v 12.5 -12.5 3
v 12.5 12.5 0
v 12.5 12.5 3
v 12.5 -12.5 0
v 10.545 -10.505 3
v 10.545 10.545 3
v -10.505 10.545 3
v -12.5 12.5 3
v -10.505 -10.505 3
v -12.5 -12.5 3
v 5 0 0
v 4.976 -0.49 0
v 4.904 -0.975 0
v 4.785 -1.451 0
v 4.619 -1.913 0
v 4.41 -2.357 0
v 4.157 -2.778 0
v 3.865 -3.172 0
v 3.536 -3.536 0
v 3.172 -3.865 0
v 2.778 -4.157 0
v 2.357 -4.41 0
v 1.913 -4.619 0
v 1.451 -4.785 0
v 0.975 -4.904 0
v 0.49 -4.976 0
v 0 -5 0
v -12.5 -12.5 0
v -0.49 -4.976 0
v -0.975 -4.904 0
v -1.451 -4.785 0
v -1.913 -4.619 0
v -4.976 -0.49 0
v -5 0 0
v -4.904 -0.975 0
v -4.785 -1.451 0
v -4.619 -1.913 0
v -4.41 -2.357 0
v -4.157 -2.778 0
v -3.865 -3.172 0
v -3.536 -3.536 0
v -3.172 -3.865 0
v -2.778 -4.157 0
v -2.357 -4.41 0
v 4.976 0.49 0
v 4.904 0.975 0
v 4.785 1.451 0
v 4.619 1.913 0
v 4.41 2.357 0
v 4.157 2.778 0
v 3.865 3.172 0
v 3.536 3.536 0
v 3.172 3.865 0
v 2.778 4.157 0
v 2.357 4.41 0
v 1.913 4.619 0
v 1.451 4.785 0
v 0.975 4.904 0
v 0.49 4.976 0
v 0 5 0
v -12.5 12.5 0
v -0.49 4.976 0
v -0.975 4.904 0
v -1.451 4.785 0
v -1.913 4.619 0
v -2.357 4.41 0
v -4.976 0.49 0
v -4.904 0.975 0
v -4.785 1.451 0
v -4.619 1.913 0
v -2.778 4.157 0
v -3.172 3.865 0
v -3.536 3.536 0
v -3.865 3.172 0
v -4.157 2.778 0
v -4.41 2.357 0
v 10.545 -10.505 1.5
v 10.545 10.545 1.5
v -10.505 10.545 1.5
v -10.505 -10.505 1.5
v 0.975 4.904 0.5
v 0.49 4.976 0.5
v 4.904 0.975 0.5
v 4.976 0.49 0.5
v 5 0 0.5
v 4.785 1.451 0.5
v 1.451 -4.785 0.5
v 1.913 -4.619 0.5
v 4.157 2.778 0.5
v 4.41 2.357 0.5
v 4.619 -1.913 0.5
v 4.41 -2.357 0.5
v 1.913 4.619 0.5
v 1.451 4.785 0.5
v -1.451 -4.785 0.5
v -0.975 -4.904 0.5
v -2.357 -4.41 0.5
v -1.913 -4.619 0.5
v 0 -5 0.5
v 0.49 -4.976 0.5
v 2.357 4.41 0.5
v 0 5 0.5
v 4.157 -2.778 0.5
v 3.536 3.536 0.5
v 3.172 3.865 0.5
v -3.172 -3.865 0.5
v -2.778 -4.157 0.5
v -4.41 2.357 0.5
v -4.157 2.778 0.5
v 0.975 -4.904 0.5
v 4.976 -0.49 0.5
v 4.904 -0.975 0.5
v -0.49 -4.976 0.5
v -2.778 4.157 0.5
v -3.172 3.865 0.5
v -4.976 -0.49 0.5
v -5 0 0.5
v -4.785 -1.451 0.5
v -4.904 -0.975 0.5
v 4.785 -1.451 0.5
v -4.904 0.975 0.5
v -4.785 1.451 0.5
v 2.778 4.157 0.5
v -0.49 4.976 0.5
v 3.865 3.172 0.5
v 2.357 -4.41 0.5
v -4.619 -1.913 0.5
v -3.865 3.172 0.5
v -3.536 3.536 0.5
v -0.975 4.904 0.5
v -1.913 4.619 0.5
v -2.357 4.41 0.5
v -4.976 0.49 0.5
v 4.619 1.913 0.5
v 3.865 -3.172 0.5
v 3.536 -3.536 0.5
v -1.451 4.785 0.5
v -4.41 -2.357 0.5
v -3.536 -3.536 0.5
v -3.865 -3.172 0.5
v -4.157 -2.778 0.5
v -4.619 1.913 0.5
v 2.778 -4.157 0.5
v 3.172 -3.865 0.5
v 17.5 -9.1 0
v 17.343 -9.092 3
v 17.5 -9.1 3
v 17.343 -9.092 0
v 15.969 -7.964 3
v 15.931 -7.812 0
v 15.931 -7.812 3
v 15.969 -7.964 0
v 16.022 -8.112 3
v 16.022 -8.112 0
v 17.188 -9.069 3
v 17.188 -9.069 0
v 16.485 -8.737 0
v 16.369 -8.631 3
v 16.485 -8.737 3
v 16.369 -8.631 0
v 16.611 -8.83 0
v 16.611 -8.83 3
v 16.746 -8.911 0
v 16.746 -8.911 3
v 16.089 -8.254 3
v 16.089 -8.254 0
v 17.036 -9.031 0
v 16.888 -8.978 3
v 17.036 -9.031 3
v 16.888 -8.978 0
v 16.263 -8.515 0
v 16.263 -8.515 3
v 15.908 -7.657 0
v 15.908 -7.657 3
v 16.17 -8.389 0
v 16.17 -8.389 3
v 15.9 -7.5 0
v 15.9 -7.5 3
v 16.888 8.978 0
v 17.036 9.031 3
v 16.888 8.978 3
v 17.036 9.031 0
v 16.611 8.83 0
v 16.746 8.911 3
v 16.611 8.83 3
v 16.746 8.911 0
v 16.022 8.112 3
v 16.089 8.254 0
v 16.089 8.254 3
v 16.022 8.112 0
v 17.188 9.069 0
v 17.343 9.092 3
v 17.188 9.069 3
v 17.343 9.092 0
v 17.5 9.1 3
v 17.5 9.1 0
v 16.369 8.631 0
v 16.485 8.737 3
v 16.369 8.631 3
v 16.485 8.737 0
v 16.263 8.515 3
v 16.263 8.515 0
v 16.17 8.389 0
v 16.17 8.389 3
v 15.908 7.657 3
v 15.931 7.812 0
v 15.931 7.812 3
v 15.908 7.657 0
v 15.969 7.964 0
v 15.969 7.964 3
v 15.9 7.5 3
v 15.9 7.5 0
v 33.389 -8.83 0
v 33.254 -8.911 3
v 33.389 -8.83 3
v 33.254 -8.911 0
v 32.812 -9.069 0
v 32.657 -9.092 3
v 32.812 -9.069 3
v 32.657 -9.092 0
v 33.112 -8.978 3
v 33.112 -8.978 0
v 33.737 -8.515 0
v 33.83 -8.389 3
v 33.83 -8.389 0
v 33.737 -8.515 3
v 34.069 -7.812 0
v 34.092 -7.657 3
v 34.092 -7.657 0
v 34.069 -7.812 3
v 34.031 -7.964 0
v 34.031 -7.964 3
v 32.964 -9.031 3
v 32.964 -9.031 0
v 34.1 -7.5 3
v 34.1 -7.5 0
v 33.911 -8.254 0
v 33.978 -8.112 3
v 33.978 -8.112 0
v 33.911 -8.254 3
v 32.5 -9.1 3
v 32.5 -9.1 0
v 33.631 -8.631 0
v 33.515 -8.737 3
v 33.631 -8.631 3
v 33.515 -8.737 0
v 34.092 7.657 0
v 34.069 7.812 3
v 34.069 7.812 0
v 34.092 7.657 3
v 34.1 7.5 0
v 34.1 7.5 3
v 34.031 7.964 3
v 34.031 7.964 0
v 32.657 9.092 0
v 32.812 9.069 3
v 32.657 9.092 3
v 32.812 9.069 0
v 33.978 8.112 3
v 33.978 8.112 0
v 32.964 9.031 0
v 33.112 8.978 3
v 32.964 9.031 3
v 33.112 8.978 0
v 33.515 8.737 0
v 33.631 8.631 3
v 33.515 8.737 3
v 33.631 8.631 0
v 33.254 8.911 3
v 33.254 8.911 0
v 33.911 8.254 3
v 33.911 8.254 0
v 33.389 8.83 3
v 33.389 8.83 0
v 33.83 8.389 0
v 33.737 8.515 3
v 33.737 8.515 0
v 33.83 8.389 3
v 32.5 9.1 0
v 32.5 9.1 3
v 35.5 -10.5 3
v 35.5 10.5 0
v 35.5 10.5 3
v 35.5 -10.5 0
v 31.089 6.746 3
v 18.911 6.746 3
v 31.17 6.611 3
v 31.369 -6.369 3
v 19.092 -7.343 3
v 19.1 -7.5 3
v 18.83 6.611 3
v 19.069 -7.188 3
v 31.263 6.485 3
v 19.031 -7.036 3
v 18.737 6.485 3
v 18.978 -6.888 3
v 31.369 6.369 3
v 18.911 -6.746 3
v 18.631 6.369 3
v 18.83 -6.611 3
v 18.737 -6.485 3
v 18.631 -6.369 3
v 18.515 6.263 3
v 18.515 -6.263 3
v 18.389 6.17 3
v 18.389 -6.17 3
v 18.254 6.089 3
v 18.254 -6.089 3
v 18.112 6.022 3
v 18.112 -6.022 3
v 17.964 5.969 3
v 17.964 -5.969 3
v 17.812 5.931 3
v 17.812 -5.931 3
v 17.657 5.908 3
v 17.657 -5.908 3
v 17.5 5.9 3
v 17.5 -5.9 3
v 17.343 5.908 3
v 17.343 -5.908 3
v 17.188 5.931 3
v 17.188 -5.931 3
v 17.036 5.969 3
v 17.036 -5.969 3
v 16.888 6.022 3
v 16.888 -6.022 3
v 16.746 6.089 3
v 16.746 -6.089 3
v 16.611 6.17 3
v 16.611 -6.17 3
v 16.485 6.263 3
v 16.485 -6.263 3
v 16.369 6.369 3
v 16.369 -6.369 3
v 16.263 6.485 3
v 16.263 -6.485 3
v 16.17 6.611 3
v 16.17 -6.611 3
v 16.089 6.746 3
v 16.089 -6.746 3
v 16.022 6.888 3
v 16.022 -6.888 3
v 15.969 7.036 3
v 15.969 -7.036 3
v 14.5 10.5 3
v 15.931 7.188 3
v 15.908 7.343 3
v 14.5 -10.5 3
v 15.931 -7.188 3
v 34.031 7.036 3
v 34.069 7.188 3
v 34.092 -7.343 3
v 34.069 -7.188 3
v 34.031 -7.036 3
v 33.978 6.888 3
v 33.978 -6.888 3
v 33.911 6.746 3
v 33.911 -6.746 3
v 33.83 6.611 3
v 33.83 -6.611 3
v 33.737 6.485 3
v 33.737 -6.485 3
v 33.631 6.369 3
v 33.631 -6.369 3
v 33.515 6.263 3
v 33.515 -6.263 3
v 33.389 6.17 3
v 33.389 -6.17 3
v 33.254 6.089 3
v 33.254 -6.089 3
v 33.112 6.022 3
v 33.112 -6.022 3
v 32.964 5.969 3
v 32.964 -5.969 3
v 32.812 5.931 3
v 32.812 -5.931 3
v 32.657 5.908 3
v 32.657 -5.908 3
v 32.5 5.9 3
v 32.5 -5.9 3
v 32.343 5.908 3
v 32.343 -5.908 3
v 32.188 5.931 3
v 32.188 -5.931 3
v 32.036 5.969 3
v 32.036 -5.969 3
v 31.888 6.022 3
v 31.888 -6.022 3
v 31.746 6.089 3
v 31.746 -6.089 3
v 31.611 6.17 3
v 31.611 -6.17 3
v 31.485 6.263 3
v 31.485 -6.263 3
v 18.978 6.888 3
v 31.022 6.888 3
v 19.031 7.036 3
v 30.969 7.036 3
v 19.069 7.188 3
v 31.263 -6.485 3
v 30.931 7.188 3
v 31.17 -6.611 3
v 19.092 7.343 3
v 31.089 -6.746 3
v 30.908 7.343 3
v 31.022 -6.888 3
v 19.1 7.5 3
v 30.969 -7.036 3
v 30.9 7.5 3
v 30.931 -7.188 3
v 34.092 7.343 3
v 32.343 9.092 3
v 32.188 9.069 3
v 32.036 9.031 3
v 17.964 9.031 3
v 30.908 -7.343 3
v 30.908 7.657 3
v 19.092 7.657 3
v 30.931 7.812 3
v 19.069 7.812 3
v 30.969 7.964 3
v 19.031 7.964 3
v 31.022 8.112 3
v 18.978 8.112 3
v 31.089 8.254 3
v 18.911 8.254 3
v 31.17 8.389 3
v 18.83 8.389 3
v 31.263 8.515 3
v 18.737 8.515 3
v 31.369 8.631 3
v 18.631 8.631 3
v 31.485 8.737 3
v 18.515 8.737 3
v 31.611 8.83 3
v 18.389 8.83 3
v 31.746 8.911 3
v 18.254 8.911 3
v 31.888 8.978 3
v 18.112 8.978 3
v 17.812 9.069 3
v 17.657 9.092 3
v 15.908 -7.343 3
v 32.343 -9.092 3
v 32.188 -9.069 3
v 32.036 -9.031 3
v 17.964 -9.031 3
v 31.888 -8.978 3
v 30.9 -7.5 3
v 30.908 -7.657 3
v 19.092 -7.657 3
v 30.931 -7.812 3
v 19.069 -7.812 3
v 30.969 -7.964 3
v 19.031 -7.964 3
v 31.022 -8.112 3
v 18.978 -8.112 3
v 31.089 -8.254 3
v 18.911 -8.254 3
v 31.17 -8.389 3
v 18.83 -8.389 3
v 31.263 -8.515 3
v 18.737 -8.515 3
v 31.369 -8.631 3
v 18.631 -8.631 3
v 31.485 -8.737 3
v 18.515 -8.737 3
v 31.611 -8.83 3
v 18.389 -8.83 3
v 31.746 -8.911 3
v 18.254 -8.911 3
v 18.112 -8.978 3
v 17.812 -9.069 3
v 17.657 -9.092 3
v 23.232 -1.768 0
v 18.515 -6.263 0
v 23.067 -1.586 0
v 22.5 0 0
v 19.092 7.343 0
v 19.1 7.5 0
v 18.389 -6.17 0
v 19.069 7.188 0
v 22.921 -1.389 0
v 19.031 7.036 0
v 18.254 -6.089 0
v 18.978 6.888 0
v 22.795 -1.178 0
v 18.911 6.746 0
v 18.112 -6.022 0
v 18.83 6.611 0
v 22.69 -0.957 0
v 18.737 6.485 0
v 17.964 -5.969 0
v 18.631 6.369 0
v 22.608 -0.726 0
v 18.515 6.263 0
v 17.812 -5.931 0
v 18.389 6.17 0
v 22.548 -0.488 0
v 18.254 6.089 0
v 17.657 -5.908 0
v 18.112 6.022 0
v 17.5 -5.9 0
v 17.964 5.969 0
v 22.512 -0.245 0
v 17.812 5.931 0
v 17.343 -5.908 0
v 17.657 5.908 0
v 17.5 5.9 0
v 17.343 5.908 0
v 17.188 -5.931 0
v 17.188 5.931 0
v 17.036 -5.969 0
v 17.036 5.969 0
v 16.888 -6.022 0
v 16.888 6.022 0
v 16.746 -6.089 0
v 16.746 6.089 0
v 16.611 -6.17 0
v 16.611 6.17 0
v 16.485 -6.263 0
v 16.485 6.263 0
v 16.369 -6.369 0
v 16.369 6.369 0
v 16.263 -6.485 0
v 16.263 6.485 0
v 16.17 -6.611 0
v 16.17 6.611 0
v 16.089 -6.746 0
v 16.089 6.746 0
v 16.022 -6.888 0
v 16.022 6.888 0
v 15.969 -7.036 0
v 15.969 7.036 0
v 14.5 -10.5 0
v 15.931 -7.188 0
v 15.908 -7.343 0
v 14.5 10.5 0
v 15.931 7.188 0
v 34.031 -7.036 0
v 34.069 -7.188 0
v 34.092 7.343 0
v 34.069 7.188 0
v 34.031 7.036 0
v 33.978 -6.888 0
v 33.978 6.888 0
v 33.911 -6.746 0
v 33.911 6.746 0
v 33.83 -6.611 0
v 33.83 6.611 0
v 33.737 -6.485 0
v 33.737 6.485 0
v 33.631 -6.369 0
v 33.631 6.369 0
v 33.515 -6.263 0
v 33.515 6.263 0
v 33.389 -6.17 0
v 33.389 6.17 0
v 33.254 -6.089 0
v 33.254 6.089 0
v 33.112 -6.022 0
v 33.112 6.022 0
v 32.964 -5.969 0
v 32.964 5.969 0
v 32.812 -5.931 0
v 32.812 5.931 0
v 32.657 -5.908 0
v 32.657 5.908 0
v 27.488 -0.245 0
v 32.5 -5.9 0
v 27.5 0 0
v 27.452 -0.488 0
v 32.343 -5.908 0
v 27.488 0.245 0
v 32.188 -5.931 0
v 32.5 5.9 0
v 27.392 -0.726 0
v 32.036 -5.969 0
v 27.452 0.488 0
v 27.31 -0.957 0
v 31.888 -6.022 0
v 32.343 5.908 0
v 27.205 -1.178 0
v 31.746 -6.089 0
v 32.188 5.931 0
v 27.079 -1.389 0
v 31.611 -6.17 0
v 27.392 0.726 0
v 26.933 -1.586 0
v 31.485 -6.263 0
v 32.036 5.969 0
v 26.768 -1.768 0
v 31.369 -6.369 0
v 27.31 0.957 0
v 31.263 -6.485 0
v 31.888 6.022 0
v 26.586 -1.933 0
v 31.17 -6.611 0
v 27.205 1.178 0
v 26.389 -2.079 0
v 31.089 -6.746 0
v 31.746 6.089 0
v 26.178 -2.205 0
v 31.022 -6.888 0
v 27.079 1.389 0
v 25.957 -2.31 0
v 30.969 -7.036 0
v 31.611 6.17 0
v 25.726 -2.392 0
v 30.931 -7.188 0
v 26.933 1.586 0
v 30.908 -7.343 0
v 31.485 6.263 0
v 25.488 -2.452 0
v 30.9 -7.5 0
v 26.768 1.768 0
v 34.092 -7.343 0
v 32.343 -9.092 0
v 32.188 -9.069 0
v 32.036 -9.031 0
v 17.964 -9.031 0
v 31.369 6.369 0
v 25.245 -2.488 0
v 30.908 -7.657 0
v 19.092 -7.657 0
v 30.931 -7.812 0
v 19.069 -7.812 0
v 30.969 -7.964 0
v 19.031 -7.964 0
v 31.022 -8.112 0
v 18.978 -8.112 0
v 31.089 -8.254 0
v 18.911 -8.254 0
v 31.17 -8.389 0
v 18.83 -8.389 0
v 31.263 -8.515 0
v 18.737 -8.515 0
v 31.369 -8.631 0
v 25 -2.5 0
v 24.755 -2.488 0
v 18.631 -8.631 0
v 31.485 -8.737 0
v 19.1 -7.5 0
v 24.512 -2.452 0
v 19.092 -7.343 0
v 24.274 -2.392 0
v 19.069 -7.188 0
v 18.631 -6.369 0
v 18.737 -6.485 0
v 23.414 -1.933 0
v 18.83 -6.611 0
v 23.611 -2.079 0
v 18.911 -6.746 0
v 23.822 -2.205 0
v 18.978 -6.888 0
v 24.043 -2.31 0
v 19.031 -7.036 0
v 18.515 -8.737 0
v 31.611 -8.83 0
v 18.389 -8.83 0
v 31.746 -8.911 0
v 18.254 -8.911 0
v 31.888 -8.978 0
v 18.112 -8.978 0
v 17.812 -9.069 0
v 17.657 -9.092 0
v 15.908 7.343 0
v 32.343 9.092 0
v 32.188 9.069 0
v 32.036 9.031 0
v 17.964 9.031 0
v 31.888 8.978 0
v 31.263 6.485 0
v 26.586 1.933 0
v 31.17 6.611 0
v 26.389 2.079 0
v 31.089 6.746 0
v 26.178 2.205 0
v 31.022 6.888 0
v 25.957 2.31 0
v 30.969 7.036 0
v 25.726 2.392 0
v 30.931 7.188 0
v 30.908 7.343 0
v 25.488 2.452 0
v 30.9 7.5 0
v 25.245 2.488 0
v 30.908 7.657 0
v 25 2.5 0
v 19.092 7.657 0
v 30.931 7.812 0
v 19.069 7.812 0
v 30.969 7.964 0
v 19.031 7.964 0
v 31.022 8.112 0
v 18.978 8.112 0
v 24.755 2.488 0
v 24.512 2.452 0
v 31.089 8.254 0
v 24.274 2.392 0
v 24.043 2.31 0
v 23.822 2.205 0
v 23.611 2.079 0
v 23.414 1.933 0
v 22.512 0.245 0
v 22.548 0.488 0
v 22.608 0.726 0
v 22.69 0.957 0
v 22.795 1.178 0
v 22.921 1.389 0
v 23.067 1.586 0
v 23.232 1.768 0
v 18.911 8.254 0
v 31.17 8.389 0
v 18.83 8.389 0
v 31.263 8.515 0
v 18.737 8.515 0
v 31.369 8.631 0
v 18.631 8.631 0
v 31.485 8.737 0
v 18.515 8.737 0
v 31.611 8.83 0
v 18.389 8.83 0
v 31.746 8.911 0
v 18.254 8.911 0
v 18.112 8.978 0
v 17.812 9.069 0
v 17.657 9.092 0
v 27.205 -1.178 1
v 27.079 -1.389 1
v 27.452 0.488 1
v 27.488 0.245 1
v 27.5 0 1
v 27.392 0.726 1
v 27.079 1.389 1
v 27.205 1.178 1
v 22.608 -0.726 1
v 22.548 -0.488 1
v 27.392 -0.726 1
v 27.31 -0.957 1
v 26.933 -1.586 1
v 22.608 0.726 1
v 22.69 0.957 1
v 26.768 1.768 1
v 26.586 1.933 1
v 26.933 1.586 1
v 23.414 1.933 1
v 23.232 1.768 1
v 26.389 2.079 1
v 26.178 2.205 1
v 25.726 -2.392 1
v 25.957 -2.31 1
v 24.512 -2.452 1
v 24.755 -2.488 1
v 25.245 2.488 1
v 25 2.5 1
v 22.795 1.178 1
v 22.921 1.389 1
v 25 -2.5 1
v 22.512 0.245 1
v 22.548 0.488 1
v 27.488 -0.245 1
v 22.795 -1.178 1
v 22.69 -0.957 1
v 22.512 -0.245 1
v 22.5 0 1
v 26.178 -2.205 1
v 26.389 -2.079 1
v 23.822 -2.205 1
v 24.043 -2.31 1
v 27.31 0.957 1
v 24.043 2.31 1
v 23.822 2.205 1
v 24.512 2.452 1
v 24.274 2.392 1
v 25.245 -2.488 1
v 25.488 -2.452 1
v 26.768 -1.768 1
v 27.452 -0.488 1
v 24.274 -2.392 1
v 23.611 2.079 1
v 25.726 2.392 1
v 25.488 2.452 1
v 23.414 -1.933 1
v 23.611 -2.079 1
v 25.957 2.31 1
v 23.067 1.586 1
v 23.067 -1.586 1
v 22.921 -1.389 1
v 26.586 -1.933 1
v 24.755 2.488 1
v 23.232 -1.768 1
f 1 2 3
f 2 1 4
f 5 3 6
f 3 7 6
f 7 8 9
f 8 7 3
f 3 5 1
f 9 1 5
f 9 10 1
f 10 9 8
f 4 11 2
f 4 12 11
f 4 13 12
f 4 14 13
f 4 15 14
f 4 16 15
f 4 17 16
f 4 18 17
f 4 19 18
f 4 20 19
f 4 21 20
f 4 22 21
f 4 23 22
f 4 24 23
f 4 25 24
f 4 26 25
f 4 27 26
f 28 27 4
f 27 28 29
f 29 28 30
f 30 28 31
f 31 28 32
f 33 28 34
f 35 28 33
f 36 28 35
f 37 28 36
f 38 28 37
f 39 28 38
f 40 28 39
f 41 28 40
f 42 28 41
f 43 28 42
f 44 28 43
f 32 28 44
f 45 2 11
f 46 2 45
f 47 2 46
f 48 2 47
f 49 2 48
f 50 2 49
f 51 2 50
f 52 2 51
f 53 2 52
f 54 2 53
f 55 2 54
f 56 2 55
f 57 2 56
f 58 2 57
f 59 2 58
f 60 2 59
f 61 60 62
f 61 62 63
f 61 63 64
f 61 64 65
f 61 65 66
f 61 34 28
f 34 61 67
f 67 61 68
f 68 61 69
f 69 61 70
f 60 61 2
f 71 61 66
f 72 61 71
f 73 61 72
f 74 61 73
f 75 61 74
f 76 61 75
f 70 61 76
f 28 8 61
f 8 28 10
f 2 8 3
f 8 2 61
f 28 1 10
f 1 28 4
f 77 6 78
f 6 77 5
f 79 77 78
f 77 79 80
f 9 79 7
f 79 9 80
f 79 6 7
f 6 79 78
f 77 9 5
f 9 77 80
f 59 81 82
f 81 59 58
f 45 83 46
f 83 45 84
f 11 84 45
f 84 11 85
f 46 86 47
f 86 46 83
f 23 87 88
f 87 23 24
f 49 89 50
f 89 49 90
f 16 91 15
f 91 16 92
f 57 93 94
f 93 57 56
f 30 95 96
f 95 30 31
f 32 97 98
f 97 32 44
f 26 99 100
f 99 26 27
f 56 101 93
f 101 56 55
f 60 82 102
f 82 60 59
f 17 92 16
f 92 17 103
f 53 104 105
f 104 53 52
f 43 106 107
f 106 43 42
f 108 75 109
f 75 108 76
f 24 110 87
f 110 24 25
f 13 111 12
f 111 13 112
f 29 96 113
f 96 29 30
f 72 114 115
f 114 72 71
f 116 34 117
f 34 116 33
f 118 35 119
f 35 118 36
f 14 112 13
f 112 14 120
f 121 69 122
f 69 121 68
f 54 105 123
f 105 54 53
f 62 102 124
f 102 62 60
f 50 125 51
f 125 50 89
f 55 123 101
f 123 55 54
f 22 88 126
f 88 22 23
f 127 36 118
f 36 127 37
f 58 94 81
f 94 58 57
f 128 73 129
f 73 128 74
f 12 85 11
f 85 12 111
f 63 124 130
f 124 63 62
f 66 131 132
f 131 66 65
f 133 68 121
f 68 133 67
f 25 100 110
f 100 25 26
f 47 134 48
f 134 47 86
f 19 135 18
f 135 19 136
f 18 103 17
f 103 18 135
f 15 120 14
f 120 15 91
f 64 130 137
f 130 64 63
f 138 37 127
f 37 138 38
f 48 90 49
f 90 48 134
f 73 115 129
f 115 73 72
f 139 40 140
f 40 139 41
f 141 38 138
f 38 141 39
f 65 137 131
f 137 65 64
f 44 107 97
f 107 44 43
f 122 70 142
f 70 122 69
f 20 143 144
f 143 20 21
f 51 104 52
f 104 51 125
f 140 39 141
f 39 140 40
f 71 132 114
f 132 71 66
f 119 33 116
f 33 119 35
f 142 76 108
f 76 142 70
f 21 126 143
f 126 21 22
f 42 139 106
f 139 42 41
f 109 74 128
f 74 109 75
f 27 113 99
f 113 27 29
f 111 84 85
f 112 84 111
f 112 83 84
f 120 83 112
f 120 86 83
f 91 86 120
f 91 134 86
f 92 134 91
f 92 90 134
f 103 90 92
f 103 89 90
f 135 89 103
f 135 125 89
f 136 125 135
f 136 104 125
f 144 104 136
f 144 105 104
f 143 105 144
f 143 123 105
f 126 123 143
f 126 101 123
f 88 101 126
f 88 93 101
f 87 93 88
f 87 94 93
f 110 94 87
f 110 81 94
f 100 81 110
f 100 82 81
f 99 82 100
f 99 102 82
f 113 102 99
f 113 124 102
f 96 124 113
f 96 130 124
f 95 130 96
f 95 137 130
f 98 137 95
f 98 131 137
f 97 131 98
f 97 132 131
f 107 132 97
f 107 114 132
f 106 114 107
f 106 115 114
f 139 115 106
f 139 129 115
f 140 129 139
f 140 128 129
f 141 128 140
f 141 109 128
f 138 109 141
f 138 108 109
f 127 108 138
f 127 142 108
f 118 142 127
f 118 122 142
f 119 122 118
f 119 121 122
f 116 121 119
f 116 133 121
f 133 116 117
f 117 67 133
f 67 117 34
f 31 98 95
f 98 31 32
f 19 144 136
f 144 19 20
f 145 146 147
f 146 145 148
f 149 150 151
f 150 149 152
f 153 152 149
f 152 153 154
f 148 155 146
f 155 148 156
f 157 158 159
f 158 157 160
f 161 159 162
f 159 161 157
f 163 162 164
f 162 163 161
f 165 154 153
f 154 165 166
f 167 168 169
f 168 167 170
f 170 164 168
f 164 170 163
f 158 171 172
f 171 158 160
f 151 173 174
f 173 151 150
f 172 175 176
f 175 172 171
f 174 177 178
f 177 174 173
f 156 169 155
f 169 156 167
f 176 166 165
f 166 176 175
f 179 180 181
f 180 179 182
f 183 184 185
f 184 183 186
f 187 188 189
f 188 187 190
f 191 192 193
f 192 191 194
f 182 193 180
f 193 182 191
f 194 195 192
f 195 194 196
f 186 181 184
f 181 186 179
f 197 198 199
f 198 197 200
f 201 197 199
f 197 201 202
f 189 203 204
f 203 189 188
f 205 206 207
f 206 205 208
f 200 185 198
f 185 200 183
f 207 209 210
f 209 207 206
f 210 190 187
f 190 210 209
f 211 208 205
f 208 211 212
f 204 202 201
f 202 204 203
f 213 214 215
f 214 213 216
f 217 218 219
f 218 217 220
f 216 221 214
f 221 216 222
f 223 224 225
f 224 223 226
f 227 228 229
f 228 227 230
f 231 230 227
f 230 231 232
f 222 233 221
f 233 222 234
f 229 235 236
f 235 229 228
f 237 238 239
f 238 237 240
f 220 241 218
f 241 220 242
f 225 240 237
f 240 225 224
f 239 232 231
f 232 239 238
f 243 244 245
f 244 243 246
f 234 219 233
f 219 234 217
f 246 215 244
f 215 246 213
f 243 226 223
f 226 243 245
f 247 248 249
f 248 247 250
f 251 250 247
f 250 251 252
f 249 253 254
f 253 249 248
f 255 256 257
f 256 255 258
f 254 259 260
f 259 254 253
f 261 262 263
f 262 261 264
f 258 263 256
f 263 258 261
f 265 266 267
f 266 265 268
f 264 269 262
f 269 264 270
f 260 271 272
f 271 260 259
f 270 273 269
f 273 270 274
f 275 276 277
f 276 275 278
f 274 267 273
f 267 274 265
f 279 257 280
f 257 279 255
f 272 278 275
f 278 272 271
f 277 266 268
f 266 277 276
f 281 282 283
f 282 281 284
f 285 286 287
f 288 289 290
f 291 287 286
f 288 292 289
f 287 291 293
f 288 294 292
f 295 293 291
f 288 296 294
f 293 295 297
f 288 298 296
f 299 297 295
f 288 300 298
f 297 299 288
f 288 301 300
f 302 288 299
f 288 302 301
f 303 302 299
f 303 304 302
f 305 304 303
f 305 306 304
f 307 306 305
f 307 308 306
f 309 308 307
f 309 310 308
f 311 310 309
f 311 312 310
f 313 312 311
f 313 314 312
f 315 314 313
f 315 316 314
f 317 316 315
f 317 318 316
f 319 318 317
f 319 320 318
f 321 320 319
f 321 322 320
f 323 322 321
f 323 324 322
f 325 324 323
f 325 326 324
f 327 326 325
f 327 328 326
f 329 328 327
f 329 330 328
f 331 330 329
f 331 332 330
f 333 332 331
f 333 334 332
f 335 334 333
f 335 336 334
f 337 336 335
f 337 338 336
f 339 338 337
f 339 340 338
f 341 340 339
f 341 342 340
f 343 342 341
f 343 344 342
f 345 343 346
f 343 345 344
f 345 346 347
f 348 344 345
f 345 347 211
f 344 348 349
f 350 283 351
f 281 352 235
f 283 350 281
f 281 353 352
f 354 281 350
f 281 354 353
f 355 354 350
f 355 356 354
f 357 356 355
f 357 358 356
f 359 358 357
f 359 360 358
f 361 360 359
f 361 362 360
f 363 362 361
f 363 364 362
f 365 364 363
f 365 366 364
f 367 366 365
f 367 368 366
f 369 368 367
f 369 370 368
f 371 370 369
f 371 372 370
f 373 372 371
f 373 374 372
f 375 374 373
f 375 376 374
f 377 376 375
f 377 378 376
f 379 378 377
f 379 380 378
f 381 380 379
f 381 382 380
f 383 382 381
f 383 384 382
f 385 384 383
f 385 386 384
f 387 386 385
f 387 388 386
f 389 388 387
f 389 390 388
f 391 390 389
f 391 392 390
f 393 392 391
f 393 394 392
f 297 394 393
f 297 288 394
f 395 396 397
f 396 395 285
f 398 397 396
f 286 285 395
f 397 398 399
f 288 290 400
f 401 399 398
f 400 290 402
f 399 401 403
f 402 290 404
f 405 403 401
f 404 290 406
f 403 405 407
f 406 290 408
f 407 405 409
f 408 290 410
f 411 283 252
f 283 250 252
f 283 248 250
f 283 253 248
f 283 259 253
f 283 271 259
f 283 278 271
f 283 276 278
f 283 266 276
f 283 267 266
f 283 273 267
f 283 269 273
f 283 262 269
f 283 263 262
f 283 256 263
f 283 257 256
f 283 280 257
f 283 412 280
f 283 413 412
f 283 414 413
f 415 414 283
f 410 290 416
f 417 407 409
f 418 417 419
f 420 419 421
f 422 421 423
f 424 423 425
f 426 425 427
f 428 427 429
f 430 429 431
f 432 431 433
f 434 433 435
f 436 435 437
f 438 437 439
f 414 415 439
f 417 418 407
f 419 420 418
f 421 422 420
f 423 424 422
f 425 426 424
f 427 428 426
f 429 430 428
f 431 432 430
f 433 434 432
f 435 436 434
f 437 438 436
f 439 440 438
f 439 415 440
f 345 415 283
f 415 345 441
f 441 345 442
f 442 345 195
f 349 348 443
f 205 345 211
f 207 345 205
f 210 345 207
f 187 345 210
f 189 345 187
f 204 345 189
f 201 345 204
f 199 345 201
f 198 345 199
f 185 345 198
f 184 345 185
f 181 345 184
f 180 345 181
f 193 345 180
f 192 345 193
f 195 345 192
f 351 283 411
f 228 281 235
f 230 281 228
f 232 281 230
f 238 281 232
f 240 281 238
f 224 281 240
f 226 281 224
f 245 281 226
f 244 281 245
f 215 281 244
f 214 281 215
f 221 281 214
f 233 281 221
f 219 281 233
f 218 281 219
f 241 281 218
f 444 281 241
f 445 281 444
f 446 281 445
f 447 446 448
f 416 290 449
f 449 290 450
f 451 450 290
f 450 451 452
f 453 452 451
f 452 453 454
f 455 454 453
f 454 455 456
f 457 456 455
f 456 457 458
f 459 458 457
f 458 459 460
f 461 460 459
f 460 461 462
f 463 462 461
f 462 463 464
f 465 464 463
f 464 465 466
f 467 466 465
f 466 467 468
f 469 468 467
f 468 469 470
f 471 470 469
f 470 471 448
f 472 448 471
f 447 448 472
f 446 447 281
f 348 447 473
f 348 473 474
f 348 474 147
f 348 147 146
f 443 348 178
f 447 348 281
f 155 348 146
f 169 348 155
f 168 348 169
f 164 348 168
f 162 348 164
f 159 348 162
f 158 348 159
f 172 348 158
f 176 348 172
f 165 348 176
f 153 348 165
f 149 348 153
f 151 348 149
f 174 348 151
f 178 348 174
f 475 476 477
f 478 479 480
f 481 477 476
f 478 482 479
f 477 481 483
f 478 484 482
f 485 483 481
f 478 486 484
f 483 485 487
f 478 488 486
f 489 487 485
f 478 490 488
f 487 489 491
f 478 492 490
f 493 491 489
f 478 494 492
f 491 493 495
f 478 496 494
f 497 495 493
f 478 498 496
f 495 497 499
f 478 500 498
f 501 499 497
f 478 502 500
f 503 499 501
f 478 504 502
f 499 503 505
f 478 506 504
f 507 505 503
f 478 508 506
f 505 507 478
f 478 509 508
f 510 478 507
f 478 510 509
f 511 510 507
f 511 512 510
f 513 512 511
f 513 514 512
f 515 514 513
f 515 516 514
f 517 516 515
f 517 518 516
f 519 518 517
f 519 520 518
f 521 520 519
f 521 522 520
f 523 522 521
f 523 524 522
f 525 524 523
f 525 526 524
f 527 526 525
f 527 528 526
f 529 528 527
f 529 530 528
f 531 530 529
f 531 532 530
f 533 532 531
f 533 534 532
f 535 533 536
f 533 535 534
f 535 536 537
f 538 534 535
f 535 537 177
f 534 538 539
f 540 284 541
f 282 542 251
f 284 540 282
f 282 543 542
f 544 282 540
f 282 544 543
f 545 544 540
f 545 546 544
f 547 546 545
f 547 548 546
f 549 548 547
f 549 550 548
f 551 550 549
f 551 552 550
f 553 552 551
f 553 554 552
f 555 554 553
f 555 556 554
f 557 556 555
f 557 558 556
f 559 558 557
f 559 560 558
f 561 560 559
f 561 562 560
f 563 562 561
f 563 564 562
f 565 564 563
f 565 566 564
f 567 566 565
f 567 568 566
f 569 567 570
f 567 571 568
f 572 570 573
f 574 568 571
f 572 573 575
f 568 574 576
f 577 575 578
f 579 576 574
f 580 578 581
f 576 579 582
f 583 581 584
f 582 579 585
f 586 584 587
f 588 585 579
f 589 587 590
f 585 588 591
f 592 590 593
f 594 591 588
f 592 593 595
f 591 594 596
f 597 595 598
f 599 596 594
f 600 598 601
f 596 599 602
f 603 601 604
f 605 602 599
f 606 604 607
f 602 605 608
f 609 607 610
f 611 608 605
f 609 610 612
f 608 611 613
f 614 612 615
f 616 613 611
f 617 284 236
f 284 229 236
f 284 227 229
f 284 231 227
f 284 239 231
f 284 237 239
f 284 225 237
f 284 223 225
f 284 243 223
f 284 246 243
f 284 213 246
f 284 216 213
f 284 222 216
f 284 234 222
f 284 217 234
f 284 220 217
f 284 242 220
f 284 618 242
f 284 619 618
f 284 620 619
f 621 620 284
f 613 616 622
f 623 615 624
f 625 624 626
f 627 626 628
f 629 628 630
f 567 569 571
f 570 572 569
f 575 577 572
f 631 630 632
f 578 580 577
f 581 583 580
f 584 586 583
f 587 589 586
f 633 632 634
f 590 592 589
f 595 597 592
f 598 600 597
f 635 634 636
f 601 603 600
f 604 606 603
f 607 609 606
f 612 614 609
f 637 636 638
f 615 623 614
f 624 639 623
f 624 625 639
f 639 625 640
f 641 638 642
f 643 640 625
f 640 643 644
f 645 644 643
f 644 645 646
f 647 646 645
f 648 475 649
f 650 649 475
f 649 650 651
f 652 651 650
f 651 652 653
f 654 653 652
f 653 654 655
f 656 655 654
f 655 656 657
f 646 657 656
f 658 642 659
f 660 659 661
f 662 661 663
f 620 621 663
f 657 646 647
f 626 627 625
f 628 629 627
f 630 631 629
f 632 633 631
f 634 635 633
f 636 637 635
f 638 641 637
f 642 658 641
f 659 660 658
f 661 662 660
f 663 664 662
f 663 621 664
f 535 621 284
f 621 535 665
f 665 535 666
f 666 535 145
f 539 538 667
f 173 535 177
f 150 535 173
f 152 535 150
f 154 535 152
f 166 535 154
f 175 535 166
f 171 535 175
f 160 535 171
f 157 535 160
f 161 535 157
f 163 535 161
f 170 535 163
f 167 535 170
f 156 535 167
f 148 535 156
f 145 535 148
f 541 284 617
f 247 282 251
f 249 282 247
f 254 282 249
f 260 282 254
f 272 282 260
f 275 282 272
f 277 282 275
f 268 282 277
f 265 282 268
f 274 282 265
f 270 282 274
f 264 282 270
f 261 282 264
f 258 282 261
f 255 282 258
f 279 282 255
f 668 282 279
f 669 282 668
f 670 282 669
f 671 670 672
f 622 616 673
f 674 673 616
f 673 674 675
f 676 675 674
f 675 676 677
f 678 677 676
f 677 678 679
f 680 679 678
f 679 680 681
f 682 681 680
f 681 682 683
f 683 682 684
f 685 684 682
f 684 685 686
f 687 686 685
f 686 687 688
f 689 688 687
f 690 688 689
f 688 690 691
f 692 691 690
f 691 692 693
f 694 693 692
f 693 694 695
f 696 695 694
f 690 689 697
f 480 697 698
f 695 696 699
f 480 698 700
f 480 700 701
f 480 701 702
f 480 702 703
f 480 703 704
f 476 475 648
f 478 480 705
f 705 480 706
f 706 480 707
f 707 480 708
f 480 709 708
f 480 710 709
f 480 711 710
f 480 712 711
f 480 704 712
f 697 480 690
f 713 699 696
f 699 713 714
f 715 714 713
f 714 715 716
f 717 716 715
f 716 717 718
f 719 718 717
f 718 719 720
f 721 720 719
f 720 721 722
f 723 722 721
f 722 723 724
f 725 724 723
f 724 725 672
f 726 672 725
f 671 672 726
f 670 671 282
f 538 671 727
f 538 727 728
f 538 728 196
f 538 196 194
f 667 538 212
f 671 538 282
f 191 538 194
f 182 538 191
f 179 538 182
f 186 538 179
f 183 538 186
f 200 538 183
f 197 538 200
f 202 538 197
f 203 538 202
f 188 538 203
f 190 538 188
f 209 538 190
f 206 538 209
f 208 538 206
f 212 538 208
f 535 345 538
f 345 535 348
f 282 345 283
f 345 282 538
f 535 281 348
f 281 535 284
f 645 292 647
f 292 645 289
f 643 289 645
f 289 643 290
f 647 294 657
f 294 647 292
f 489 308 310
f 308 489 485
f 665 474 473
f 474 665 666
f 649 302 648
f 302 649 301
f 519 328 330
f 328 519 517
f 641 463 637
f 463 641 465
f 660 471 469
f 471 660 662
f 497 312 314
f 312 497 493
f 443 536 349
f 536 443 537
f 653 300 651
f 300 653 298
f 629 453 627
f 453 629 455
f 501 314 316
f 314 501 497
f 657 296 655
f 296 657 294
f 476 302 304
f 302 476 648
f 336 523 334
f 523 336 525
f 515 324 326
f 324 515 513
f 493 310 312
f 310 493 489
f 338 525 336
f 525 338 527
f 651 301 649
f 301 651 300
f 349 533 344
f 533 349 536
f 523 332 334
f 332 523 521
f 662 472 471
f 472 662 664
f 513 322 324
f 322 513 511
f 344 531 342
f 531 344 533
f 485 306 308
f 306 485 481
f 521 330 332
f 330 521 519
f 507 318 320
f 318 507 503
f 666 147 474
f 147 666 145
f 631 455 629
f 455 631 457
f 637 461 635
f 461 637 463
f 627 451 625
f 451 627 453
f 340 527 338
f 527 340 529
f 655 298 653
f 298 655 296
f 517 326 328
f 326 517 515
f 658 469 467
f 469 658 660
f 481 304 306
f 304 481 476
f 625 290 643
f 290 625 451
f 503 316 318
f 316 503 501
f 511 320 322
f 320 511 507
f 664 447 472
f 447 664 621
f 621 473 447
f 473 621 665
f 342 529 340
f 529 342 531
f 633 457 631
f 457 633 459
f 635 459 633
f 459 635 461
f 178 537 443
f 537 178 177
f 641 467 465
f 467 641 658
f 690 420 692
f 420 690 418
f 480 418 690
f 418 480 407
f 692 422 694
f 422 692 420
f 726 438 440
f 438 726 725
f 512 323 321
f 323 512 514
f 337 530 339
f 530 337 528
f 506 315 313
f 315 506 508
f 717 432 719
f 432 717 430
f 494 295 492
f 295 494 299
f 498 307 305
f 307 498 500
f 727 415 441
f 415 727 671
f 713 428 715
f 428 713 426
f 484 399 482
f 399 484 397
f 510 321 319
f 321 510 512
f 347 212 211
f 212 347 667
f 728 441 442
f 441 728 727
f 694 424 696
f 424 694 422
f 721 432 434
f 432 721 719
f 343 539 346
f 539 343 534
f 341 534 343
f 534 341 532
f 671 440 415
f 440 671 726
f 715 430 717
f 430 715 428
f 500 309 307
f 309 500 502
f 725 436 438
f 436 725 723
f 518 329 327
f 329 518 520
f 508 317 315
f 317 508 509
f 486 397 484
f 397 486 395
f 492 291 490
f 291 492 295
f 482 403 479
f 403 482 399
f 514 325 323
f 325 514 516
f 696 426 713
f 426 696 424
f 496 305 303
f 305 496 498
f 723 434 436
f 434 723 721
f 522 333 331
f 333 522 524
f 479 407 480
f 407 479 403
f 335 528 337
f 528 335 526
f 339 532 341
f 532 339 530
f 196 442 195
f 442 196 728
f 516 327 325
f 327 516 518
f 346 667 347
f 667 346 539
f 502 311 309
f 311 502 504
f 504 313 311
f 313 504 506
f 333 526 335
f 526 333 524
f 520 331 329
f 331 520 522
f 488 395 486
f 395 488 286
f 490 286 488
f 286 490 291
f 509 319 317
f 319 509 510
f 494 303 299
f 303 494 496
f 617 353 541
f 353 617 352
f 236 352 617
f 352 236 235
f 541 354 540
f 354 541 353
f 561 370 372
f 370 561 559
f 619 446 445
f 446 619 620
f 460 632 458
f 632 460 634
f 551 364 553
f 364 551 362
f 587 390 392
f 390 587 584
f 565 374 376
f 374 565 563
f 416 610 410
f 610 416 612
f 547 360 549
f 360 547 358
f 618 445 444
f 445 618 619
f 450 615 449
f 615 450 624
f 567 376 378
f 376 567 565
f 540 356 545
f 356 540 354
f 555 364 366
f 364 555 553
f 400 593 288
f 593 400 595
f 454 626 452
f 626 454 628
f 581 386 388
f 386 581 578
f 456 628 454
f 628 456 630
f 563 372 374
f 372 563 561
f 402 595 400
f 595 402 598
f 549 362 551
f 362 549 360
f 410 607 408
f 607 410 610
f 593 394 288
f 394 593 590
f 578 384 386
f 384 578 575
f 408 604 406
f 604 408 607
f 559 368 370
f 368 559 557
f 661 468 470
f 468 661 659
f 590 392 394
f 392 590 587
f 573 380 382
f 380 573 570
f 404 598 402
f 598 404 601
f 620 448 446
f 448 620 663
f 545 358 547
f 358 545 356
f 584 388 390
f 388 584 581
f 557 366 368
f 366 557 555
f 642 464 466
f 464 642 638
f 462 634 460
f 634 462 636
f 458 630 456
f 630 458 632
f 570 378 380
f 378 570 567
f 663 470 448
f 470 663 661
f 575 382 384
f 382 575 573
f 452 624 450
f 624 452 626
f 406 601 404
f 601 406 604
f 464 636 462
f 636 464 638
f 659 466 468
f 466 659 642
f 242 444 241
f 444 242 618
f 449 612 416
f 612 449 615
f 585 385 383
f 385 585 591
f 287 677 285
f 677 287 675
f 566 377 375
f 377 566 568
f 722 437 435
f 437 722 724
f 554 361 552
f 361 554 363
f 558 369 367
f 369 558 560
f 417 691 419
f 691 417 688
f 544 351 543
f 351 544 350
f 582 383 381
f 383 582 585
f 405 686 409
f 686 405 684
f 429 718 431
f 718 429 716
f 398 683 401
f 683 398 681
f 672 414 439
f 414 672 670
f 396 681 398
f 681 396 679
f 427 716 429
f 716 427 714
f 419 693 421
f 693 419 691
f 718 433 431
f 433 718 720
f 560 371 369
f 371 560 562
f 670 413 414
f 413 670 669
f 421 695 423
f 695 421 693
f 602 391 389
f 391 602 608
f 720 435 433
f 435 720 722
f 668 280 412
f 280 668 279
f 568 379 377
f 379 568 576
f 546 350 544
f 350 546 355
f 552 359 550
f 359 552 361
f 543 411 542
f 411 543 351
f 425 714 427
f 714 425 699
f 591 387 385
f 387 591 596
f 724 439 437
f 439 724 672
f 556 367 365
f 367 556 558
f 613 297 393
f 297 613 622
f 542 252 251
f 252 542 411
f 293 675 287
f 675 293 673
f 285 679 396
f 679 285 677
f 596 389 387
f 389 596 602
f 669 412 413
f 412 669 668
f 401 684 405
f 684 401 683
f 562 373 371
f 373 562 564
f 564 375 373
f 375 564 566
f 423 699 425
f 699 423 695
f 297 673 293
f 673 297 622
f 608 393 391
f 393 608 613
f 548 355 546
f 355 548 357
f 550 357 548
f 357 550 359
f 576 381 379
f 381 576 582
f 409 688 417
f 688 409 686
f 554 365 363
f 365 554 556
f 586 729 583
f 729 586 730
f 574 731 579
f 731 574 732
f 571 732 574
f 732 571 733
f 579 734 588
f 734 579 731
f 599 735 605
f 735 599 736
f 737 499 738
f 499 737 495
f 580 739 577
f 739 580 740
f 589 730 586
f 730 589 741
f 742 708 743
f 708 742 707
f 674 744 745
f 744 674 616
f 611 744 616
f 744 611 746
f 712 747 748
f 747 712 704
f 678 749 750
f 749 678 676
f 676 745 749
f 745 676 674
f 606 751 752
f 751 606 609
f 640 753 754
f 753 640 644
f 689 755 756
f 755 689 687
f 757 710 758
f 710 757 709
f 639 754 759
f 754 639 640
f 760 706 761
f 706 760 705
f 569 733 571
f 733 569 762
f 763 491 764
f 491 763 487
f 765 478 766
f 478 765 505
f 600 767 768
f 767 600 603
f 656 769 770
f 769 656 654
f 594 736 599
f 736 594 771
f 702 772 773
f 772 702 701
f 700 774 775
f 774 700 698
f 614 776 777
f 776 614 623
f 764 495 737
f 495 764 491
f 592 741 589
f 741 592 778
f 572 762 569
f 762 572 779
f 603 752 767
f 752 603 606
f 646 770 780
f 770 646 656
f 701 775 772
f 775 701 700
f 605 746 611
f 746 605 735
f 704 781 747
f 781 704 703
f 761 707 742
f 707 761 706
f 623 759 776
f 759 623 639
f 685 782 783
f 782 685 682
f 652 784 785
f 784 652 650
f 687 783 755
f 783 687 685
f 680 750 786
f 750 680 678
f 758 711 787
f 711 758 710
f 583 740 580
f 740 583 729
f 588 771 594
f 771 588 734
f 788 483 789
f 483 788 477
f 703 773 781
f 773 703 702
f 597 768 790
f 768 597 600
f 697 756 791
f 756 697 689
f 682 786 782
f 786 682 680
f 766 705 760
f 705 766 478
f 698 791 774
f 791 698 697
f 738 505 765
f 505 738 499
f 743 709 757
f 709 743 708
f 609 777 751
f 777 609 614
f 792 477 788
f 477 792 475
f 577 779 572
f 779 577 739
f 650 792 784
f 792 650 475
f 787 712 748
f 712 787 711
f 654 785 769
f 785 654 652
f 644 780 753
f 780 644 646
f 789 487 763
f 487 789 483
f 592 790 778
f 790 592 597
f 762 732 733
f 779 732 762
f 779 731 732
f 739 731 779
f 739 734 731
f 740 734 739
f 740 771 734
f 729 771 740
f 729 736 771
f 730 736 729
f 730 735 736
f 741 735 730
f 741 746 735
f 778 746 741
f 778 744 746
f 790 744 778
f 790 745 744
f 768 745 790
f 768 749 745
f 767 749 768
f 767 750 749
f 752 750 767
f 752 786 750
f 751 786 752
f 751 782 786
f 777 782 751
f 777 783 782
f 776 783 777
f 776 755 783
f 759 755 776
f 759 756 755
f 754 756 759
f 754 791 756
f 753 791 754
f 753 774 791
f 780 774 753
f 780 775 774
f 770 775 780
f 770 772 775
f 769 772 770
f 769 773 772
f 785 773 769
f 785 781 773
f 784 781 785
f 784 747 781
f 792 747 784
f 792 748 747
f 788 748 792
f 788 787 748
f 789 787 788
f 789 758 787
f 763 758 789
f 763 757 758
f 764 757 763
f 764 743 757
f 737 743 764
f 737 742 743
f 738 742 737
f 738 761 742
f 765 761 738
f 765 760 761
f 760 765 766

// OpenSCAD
// ADXL357 evaluation-board mount. All dimensions in mm.
// Pattern source: ADI EngineerZone EVAL-ADXL357Z hole-size answer.
// Confirm the 15 mm square pattern on your board before printing.

base_size = 21;
base_thickness = 3;
hole_spacing = 15;       // Screw centers, X and Y
hole_diameter = 3.2;     // Clearance hole; change for your screws
boss_diameter = 6;       // Reinforcement around each screw
boss_height = 3;         // Board clearance above the base

$fn = 64;
eps = 0.02;

module screw_boss() {
    // Hollow cylinder, extending into the base for a solid union.
    difference() {
        cylinder(d = boss_diameter, h = base_thickness );
        translate([0, 0, -eps])
            cylinder(d = hole_diameter,
                     h = base_thickness + boss_height + 2*eps);
    }
}

module mount() {
    union() {
        difference() {
            translate([-base_size/2, -base_size/2, 0])
                cube([base_size, base_size, base_thickness]);
            for (x = [-hole_spacing/2, hole_spacing/2])
                for (y = [-hole_spacing/2, hole_spacing/2])
                    translate([x, y, -eps])
                        cylinder(d = hole_diameter, h = base_thickness + 2*eps);
        }
        for (x = [-hole_spacing/2, hole_spacing/2])
            for (y = [-hole_spacing/2, hole_spacing/2])
                translate([x, y, 0]) screw_boss();
    }
}

module mag(){
difference(){
mount();
cylinder(2,2.5,2.5,true);
}}


module holder(){
difference(){
difference(){
cube([25,25,3], true);
translate([-10.505,-10.505,0]) cube([21.05,21.05,2]);
}
translate([0,0,-2])
cylinder(1,5,5);
}
}
translate([0,0,1.5])holder();

translate([25,0,0]) mag();
